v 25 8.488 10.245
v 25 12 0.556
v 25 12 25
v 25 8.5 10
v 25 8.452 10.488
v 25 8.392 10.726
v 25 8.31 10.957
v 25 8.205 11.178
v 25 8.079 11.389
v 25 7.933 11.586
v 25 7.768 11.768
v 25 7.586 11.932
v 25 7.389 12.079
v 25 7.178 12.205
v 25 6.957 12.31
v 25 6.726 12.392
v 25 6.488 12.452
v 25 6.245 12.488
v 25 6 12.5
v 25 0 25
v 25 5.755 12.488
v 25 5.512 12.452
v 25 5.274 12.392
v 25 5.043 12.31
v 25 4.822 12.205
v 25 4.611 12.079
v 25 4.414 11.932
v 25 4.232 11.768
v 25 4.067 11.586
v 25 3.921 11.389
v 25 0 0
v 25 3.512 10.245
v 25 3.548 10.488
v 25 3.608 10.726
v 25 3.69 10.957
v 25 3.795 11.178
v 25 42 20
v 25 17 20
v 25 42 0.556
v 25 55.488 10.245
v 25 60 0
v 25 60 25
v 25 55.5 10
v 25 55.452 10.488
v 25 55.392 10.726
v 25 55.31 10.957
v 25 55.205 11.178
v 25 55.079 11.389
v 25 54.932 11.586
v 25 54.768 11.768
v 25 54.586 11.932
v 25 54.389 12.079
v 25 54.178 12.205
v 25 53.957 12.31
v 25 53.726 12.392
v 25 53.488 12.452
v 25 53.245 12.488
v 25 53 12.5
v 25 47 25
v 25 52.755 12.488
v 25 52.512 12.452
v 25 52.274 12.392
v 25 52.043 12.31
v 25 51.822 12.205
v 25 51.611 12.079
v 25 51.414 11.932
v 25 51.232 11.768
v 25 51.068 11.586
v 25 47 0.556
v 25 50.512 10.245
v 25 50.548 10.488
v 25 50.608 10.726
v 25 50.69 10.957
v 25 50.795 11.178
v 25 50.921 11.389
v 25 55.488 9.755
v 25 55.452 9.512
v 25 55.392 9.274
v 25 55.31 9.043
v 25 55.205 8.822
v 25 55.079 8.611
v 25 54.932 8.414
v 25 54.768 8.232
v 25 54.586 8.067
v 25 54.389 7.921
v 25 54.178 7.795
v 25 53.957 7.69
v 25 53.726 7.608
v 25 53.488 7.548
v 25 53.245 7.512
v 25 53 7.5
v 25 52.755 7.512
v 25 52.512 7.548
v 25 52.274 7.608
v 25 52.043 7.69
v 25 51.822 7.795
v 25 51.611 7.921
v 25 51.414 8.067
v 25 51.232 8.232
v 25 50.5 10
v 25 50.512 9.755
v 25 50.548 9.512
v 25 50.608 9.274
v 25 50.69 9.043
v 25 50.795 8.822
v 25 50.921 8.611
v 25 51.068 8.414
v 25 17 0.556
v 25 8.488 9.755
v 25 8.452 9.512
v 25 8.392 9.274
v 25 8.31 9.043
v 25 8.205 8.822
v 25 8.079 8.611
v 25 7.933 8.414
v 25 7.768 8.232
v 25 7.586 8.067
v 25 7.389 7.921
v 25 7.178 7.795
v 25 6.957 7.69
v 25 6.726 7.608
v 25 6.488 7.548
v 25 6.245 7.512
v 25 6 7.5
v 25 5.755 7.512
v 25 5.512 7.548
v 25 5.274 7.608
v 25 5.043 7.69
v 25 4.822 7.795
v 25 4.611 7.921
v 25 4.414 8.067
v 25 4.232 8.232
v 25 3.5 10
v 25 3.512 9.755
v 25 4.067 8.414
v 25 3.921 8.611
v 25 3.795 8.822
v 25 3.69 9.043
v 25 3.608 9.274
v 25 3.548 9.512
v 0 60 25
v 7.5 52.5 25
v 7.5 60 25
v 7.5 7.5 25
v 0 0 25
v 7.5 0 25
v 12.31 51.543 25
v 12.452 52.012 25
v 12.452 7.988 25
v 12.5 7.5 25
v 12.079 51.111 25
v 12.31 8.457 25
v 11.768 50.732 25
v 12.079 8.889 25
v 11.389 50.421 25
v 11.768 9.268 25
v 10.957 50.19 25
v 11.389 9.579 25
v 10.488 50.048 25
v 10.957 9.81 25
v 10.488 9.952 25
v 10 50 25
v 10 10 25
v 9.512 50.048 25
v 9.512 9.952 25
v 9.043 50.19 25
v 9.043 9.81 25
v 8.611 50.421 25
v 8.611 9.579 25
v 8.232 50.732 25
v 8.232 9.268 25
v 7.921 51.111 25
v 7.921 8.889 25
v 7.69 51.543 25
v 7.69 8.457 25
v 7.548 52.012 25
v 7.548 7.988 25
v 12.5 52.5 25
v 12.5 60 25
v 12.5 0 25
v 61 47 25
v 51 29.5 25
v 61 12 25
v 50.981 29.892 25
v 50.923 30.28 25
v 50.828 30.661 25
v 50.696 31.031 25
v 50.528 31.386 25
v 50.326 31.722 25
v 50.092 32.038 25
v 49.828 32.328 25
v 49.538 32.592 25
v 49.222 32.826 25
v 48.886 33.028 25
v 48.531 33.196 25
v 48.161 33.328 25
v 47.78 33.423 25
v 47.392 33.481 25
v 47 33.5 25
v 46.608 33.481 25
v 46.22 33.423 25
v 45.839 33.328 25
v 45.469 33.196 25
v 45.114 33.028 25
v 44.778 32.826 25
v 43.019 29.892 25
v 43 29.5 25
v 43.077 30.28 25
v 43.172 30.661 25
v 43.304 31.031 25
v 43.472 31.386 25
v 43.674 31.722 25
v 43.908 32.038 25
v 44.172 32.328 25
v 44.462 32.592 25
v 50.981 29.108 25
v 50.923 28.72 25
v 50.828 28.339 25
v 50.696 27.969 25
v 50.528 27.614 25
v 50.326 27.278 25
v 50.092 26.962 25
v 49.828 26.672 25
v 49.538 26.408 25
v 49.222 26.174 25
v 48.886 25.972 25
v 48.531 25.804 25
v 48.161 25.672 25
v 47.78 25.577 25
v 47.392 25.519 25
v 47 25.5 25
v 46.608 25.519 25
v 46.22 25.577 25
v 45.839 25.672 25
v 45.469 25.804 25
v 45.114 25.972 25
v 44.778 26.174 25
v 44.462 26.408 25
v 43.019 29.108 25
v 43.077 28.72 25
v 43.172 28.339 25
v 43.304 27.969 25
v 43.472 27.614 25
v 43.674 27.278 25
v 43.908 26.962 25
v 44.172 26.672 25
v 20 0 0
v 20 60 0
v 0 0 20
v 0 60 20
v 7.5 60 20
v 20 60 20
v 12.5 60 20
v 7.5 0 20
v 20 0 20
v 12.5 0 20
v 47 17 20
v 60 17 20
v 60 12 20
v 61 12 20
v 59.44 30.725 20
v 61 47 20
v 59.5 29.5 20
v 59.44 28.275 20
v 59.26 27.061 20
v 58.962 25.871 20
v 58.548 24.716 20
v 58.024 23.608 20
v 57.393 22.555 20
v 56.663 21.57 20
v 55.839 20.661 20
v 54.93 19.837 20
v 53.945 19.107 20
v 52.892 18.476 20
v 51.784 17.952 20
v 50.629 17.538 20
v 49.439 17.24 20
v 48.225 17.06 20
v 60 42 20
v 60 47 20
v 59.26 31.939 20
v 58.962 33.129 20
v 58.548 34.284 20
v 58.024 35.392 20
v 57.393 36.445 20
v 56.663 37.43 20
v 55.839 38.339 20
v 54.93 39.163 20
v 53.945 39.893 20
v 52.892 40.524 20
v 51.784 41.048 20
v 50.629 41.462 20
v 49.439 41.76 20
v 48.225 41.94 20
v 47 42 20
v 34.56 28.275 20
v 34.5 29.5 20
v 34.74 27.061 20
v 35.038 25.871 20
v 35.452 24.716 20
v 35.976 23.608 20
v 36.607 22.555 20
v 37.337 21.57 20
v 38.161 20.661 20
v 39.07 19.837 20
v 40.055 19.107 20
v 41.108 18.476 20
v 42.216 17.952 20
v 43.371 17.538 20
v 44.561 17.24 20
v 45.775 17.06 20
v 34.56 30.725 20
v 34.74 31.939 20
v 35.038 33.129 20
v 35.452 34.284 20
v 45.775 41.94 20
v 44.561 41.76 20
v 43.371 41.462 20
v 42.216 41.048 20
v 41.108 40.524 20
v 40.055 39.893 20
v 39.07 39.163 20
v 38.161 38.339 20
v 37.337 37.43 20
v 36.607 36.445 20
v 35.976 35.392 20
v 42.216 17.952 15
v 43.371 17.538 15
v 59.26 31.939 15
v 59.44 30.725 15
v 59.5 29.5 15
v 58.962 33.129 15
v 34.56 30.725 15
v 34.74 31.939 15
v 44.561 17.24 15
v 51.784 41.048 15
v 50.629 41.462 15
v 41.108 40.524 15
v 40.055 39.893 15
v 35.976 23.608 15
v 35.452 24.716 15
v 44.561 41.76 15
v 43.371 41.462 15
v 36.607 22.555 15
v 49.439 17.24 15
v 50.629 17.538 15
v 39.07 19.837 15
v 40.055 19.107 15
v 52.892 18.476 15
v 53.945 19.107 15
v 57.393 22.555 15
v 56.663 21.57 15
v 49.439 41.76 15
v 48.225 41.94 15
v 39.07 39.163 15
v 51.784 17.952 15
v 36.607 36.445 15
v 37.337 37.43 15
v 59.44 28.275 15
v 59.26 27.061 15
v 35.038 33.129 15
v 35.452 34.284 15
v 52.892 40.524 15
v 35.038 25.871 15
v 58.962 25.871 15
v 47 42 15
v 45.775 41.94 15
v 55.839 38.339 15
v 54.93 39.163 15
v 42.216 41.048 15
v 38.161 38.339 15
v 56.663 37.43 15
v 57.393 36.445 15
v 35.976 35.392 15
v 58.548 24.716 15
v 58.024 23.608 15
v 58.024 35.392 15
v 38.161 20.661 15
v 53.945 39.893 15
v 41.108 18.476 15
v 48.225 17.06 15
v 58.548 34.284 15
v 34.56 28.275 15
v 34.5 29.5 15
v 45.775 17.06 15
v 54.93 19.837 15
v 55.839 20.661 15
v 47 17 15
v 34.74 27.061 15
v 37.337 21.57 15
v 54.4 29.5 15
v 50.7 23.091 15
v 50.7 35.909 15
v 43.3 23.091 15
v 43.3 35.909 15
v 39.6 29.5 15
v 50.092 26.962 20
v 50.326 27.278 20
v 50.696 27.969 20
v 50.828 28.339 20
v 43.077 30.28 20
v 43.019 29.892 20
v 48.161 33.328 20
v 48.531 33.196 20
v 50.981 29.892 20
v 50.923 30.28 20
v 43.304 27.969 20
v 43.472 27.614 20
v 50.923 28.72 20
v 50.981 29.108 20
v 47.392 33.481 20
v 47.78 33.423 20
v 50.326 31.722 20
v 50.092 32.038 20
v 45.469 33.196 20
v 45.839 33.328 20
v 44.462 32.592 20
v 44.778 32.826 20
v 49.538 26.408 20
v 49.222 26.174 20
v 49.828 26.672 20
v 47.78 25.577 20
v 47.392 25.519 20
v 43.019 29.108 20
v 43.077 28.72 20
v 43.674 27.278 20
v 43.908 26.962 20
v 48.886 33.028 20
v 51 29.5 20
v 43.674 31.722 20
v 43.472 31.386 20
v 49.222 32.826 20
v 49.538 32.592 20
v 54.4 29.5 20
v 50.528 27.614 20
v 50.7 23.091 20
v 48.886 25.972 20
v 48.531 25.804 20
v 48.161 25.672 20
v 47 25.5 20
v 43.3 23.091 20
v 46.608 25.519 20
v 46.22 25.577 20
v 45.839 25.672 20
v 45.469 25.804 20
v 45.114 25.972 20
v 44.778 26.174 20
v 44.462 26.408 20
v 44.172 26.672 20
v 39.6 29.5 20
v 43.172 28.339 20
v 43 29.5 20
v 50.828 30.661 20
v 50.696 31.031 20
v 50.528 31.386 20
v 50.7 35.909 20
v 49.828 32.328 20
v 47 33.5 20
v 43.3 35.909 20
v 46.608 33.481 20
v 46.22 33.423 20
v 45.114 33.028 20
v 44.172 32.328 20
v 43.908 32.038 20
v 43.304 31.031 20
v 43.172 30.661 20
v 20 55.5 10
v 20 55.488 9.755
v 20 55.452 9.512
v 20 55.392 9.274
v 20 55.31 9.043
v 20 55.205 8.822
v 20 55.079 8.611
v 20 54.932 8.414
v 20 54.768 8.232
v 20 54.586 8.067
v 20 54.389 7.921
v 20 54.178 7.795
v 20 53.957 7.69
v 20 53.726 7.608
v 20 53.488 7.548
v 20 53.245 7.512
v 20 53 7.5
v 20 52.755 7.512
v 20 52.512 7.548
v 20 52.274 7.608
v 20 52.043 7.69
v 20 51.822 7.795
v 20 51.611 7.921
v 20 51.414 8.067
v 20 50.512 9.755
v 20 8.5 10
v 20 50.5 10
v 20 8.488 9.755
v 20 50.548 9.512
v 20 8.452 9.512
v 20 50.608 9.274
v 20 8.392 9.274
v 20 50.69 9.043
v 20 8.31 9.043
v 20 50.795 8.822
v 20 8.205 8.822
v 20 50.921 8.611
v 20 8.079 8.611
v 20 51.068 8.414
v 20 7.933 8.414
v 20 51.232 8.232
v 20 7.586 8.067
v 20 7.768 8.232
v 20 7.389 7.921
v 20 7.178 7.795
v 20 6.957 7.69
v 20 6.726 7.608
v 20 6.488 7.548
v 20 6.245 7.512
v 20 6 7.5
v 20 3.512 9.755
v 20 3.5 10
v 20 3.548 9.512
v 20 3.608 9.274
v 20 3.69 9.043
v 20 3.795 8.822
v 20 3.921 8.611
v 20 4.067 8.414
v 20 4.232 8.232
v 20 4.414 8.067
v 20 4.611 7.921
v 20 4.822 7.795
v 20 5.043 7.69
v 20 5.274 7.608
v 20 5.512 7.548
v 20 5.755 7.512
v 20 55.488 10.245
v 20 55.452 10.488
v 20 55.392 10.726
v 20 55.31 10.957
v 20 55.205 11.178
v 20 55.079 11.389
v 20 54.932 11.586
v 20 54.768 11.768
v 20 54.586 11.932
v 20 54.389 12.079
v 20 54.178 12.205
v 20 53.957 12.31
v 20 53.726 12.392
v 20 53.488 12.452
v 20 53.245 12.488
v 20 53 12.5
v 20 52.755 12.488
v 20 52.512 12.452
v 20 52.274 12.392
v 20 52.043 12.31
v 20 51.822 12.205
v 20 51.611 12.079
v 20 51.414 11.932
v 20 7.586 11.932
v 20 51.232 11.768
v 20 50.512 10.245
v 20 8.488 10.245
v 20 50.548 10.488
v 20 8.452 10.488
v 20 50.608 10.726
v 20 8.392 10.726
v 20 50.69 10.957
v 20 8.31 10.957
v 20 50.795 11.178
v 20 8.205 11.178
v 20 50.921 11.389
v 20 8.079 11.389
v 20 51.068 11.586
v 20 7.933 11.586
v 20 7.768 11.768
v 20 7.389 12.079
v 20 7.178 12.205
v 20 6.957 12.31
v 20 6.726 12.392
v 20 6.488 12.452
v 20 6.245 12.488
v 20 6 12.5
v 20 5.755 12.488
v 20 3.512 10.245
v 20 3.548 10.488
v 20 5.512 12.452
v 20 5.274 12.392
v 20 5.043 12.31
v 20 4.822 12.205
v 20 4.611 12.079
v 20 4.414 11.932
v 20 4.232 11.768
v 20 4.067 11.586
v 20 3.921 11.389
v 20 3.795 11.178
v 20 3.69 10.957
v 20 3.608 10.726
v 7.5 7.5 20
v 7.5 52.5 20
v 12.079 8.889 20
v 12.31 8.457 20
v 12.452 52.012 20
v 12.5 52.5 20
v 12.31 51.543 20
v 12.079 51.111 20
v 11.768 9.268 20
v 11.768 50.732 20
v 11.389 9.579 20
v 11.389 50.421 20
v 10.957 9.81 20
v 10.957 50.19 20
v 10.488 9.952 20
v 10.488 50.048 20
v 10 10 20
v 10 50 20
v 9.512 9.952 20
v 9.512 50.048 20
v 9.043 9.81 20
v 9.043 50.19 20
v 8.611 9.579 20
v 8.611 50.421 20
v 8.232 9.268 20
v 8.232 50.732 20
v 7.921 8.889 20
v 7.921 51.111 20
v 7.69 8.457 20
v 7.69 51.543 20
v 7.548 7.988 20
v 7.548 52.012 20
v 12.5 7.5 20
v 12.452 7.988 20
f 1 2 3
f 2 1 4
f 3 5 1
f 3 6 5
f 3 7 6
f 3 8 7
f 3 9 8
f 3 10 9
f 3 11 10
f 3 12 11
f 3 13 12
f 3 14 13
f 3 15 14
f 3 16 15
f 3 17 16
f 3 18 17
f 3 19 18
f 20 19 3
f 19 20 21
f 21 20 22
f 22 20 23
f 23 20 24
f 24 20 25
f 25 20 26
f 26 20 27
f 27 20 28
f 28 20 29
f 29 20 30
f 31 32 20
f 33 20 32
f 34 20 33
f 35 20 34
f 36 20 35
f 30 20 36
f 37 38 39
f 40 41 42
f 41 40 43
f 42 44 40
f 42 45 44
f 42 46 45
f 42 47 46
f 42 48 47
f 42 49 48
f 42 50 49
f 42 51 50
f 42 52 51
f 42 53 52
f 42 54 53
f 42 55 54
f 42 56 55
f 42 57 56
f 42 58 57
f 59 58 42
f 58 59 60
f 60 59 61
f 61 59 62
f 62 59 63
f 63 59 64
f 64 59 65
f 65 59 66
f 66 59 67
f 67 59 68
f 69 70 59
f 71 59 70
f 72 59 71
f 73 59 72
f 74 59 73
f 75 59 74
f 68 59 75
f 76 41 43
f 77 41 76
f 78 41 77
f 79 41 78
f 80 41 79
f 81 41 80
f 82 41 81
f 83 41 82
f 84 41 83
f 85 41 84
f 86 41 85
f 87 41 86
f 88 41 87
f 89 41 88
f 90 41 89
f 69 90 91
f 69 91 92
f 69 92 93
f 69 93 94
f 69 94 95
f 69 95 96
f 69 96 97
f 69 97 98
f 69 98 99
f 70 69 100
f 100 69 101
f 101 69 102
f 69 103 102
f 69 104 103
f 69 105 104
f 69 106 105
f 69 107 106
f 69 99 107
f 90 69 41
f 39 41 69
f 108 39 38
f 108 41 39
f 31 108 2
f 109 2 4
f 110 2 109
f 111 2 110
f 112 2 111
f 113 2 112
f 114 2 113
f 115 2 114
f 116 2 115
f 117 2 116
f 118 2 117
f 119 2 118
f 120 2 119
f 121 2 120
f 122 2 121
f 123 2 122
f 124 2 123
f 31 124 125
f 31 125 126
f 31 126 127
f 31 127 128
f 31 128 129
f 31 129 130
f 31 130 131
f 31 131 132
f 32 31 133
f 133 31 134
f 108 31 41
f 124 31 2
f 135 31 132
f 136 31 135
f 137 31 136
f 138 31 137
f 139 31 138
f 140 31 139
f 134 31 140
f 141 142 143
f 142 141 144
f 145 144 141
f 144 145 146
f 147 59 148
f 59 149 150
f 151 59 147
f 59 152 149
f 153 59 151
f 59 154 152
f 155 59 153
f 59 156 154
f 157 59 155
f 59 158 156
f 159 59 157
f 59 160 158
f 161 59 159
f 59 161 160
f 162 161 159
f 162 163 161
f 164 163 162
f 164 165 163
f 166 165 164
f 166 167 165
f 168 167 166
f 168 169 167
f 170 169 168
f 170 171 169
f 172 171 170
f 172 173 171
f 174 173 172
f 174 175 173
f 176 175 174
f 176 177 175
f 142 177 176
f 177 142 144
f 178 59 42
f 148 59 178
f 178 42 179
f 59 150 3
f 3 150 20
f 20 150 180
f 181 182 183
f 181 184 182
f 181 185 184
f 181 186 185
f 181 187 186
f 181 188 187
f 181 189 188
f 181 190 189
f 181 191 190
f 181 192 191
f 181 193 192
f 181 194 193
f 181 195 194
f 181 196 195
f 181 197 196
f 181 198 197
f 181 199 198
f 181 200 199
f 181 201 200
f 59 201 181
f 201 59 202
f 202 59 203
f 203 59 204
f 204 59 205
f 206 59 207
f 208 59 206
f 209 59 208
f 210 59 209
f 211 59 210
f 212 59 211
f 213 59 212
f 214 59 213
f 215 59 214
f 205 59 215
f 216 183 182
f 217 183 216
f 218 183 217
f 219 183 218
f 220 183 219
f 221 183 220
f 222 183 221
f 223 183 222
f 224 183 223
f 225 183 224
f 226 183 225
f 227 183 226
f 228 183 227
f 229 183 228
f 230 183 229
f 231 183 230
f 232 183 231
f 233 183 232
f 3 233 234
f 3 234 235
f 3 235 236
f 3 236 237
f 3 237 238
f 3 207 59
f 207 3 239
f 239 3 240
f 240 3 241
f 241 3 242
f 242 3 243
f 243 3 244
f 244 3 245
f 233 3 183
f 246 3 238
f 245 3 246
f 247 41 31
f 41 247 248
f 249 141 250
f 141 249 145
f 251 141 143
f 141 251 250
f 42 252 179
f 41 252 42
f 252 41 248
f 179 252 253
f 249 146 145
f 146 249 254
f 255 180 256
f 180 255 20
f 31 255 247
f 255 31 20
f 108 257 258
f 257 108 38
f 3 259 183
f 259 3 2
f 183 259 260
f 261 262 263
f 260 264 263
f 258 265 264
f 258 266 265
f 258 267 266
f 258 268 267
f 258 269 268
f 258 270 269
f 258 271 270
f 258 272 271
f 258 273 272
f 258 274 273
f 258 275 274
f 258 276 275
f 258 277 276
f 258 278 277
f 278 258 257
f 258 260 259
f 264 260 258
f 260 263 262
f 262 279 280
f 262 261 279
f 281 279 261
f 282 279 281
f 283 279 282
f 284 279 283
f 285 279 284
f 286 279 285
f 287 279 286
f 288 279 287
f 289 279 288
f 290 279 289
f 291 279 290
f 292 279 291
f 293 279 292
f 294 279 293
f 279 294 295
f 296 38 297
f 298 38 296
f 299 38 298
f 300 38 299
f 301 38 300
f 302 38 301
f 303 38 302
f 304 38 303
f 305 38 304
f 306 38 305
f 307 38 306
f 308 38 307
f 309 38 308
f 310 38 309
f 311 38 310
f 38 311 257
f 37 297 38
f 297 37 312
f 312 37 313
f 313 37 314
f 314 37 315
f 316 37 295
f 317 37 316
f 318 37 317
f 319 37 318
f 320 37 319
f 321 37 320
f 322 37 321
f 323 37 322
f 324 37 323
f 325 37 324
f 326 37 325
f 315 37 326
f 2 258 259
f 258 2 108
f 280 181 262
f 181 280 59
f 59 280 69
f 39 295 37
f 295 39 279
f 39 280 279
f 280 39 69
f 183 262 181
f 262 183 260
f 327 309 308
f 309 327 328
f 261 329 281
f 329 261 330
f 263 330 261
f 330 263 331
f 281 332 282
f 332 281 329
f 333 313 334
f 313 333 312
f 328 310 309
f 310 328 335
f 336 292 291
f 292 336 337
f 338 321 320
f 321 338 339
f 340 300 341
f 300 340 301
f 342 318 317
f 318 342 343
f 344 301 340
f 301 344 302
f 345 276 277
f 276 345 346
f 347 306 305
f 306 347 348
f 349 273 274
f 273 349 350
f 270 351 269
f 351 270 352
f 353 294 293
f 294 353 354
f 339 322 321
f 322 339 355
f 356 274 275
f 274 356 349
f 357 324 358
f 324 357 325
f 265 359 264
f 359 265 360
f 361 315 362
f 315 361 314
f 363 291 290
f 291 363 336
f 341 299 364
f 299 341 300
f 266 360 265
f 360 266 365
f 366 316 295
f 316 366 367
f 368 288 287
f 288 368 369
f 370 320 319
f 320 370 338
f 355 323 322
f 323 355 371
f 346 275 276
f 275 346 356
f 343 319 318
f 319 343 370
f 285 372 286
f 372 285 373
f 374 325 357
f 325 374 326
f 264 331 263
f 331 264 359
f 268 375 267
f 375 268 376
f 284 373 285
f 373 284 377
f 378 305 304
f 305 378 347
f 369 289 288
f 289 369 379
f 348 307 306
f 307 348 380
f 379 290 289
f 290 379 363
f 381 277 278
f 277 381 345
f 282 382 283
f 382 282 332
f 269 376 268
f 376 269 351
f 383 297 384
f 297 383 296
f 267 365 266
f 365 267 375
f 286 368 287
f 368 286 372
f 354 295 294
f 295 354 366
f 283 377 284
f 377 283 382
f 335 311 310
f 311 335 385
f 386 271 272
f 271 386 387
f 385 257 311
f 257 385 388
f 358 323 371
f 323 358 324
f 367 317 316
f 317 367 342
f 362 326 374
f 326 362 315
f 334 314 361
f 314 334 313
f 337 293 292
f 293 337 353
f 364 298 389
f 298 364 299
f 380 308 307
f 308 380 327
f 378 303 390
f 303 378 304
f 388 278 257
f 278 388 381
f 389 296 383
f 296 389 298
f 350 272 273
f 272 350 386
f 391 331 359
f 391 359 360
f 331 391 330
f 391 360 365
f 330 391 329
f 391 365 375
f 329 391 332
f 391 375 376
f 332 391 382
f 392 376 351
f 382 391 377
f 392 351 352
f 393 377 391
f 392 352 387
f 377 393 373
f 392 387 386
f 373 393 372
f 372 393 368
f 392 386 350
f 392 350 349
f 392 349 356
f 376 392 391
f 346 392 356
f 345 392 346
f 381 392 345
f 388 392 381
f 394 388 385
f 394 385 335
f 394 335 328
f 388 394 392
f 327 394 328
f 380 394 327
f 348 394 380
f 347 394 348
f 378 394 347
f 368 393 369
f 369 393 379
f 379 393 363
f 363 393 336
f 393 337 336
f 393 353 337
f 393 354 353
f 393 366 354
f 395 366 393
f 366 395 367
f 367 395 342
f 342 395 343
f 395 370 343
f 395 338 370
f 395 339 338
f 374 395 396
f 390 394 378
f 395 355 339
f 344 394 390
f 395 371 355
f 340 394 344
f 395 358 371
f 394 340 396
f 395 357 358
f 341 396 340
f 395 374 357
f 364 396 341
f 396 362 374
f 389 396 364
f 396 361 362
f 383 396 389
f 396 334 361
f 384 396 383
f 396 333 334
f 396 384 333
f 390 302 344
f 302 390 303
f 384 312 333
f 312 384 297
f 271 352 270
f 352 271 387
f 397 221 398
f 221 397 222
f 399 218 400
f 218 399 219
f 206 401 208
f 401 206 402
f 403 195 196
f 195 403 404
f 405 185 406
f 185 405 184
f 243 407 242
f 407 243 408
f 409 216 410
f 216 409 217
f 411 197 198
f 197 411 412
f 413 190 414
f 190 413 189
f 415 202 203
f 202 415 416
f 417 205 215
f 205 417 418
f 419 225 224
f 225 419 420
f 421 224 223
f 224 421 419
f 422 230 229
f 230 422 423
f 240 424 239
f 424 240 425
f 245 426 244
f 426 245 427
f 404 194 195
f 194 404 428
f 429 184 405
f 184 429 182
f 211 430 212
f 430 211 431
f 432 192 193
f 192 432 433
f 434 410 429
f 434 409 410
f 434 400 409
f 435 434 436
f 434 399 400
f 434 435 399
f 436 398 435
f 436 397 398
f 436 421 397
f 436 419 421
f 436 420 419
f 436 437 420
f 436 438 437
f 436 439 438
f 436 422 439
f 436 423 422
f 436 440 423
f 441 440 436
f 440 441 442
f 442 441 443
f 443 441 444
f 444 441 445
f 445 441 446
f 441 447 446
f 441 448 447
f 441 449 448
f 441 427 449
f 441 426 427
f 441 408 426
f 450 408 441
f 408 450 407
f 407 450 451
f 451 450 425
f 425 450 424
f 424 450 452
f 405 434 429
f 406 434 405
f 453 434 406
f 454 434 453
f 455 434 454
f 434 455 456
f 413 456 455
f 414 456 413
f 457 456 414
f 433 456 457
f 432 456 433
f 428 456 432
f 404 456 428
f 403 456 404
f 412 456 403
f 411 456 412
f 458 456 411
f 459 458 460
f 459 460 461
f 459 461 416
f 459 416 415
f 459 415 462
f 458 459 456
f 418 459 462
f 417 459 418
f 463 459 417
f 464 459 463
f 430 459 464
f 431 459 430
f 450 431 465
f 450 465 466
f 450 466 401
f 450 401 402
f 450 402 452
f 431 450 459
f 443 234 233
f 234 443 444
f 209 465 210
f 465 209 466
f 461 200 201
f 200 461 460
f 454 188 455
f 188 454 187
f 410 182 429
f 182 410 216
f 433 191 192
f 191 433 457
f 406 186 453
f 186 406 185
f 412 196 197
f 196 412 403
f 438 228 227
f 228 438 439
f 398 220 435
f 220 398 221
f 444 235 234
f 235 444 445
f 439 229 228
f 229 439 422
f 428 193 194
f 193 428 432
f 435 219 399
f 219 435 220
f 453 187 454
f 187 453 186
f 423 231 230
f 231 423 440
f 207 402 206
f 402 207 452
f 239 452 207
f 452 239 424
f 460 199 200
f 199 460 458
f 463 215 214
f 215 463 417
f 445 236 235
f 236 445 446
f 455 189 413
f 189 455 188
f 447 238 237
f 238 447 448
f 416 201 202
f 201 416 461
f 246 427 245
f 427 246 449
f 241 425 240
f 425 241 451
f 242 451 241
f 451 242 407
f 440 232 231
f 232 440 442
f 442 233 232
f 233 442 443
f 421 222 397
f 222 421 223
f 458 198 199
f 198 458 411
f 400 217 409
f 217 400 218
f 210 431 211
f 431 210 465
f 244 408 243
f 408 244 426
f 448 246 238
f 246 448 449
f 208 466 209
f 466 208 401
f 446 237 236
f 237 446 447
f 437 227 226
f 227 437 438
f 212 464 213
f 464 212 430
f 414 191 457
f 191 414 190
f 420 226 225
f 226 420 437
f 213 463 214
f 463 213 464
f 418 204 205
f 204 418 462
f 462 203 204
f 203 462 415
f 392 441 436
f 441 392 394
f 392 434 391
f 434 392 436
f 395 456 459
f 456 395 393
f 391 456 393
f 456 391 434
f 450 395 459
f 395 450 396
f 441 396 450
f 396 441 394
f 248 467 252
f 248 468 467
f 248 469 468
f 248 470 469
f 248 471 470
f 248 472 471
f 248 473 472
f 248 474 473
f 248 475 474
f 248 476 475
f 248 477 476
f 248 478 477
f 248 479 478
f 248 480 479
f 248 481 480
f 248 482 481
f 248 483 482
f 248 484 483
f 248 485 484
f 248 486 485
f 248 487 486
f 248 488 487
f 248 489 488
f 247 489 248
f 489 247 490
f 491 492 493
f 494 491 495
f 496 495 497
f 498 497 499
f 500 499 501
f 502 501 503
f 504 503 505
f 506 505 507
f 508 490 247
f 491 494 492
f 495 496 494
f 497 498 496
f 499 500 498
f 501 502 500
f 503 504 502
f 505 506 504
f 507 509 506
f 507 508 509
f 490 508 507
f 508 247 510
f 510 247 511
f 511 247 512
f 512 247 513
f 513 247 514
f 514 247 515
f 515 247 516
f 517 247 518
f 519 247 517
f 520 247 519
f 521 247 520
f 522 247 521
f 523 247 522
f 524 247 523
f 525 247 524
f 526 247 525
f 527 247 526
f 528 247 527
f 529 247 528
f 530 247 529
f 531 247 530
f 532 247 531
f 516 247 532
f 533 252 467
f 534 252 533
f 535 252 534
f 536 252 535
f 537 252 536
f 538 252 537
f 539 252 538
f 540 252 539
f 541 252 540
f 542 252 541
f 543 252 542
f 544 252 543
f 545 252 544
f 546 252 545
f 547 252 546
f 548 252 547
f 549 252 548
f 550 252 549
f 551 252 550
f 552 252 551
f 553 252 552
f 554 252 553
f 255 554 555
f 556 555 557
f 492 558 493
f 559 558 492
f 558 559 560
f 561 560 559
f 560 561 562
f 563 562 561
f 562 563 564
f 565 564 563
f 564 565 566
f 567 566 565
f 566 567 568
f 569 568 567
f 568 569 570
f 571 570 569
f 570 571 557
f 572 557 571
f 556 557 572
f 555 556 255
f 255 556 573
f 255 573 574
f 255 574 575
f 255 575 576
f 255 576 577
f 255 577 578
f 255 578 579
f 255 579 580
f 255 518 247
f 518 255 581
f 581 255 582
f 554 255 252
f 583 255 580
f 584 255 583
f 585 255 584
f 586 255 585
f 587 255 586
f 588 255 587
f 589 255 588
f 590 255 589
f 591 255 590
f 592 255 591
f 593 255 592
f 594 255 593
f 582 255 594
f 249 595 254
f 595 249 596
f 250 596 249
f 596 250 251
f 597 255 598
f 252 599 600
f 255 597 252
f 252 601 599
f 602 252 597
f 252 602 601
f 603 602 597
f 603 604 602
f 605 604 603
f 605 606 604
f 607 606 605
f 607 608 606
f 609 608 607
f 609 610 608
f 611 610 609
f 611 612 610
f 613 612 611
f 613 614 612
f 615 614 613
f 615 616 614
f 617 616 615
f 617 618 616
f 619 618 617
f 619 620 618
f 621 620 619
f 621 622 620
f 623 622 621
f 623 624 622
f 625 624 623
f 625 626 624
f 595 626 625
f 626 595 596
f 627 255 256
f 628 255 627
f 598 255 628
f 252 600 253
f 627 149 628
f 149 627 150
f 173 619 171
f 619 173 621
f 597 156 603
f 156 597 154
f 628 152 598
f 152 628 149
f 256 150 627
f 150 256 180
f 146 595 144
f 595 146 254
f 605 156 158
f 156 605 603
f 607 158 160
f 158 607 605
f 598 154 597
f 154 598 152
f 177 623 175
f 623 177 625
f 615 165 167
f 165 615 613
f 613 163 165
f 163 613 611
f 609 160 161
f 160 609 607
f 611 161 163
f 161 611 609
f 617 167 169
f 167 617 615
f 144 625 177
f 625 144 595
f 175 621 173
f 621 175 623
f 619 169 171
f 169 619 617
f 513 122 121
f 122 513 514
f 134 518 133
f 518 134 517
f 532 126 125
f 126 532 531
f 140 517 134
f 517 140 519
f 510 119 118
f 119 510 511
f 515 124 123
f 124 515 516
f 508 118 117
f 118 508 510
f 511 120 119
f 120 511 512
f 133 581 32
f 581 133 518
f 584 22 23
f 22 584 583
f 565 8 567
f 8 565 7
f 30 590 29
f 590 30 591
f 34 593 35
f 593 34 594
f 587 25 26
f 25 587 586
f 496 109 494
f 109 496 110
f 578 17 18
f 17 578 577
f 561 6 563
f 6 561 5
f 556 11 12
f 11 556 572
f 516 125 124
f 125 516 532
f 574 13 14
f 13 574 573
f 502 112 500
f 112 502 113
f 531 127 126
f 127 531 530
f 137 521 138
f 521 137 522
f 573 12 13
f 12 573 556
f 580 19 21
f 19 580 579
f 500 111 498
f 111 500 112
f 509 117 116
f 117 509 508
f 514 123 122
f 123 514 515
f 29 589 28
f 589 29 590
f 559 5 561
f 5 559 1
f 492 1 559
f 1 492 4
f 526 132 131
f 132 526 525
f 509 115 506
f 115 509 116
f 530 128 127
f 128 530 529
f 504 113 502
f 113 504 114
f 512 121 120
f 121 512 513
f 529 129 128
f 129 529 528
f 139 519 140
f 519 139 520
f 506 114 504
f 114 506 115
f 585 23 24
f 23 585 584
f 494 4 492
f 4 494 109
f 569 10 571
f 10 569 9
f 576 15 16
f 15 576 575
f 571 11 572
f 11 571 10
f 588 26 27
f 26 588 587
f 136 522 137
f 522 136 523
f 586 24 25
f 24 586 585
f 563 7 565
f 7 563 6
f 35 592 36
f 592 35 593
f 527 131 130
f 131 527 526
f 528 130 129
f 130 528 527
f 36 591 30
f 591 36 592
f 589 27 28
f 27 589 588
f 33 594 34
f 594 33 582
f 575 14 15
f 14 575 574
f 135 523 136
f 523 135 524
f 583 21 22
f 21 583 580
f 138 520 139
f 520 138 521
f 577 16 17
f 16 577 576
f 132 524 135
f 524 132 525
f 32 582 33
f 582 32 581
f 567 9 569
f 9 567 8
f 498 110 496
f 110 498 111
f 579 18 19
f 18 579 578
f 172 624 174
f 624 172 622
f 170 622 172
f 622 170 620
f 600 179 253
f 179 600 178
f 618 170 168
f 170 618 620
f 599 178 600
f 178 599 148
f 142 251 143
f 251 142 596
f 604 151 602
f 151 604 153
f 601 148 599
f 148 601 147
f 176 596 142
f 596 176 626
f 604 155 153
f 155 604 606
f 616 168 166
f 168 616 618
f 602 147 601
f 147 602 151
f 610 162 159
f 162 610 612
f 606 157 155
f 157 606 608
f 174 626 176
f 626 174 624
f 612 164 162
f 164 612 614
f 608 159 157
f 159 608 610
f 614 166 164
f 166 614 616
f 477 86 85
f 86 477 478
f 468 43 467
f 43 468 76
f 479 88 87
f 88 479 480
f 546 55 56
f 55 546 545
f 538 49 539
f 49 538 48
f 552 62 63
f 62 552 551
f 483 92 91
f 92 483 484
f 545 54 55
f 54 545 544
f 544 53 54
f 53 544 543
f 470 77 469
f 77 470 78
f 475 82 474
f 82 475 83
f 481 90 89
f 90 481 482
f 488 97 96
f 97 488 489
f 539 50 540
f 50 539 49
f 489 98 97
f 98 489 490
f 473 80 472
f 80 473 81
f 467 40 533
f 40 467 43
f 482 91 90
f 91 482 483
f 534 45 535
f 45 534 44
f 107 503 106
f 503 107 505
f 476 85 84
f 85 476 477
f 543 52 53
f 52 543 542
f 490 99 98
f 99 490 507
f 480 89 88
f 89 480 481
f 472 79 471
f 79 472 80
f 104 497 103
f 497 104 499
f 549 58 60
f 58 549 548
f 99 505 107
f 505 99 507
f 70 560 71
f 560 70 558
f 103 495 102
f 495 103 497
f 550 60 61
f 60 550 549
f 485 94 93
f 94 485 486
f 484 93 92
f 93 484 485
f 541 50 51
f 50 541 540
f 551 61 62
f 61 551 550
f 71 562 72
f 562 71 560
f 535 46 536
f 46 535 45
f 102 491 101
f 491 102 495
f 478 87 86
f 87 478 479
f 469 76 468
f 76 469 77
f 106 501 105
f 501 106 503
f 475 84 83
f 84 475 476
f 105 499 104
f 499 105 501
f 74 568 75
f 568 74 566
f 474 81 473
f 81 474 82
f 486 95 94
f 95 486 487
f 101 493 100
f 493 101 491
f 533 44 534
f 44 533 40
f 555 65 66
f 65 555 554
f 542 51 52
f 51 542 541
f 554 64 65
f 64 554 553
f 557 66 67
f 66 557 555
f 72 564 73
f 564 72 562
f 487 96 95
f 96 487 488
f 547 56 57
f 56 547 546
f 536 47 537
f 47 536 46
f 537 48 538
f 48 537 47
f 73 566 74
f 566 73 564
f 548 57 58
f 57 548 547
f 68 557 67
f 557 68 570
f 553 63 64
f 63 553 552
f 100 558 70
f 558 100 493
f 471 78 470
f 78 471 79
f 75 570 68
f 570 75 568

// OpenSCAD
module profile_holder(){
    difference(){
        union() {
            cube([25, 60, 25]);
            
            translate([60,17,20]) rotate([-90, 0, 180]) linear_extrude(height = 5) polygon(points=[[0,0],[36,0],[36,20]]);
            
            translate([60,47,20]) rotate([-90, 0, 180]) linear_extrude(height = 5) polygon(points=[[0,0],[36,0],[36,20]]);
            
            translate([25, 30-18, 20]) cube([36, 35, 5]);
            translate([47, 29.5, 15]) cylinder(d=25, h=10, $fn=64);
        }
        union(){
         
          cube([20, 60, 20]);
          translate([47, 29.5, 15]) {
            translate([0, 0, 5]) cylinder(d=8, h=5, $fn=64);
            cylinder(d=14.8, h=5, $fn=6);
          }
          translate([10,7.5,20]) rotate([0,0,-90]) hole();
          translate([20,6,10]) rotate([90,90,90]) cylinder(d=5, h=5, $fn=64);
          translate([10,52.5,20]) rotate([0,0,90]) hole();
          translate([20,53,10]) rotate([90,90,90]) cylinder(d=5, h=5, $fn=64);
        }
        
    }
}

module hole(){
    hull(){
        $fn=32;
        cylinder(d=5, h=5);
        translate([5,-2.5,0])cube([5,5,5]);
    }
}

//nut_holda();
profile_holder();
//hole();
